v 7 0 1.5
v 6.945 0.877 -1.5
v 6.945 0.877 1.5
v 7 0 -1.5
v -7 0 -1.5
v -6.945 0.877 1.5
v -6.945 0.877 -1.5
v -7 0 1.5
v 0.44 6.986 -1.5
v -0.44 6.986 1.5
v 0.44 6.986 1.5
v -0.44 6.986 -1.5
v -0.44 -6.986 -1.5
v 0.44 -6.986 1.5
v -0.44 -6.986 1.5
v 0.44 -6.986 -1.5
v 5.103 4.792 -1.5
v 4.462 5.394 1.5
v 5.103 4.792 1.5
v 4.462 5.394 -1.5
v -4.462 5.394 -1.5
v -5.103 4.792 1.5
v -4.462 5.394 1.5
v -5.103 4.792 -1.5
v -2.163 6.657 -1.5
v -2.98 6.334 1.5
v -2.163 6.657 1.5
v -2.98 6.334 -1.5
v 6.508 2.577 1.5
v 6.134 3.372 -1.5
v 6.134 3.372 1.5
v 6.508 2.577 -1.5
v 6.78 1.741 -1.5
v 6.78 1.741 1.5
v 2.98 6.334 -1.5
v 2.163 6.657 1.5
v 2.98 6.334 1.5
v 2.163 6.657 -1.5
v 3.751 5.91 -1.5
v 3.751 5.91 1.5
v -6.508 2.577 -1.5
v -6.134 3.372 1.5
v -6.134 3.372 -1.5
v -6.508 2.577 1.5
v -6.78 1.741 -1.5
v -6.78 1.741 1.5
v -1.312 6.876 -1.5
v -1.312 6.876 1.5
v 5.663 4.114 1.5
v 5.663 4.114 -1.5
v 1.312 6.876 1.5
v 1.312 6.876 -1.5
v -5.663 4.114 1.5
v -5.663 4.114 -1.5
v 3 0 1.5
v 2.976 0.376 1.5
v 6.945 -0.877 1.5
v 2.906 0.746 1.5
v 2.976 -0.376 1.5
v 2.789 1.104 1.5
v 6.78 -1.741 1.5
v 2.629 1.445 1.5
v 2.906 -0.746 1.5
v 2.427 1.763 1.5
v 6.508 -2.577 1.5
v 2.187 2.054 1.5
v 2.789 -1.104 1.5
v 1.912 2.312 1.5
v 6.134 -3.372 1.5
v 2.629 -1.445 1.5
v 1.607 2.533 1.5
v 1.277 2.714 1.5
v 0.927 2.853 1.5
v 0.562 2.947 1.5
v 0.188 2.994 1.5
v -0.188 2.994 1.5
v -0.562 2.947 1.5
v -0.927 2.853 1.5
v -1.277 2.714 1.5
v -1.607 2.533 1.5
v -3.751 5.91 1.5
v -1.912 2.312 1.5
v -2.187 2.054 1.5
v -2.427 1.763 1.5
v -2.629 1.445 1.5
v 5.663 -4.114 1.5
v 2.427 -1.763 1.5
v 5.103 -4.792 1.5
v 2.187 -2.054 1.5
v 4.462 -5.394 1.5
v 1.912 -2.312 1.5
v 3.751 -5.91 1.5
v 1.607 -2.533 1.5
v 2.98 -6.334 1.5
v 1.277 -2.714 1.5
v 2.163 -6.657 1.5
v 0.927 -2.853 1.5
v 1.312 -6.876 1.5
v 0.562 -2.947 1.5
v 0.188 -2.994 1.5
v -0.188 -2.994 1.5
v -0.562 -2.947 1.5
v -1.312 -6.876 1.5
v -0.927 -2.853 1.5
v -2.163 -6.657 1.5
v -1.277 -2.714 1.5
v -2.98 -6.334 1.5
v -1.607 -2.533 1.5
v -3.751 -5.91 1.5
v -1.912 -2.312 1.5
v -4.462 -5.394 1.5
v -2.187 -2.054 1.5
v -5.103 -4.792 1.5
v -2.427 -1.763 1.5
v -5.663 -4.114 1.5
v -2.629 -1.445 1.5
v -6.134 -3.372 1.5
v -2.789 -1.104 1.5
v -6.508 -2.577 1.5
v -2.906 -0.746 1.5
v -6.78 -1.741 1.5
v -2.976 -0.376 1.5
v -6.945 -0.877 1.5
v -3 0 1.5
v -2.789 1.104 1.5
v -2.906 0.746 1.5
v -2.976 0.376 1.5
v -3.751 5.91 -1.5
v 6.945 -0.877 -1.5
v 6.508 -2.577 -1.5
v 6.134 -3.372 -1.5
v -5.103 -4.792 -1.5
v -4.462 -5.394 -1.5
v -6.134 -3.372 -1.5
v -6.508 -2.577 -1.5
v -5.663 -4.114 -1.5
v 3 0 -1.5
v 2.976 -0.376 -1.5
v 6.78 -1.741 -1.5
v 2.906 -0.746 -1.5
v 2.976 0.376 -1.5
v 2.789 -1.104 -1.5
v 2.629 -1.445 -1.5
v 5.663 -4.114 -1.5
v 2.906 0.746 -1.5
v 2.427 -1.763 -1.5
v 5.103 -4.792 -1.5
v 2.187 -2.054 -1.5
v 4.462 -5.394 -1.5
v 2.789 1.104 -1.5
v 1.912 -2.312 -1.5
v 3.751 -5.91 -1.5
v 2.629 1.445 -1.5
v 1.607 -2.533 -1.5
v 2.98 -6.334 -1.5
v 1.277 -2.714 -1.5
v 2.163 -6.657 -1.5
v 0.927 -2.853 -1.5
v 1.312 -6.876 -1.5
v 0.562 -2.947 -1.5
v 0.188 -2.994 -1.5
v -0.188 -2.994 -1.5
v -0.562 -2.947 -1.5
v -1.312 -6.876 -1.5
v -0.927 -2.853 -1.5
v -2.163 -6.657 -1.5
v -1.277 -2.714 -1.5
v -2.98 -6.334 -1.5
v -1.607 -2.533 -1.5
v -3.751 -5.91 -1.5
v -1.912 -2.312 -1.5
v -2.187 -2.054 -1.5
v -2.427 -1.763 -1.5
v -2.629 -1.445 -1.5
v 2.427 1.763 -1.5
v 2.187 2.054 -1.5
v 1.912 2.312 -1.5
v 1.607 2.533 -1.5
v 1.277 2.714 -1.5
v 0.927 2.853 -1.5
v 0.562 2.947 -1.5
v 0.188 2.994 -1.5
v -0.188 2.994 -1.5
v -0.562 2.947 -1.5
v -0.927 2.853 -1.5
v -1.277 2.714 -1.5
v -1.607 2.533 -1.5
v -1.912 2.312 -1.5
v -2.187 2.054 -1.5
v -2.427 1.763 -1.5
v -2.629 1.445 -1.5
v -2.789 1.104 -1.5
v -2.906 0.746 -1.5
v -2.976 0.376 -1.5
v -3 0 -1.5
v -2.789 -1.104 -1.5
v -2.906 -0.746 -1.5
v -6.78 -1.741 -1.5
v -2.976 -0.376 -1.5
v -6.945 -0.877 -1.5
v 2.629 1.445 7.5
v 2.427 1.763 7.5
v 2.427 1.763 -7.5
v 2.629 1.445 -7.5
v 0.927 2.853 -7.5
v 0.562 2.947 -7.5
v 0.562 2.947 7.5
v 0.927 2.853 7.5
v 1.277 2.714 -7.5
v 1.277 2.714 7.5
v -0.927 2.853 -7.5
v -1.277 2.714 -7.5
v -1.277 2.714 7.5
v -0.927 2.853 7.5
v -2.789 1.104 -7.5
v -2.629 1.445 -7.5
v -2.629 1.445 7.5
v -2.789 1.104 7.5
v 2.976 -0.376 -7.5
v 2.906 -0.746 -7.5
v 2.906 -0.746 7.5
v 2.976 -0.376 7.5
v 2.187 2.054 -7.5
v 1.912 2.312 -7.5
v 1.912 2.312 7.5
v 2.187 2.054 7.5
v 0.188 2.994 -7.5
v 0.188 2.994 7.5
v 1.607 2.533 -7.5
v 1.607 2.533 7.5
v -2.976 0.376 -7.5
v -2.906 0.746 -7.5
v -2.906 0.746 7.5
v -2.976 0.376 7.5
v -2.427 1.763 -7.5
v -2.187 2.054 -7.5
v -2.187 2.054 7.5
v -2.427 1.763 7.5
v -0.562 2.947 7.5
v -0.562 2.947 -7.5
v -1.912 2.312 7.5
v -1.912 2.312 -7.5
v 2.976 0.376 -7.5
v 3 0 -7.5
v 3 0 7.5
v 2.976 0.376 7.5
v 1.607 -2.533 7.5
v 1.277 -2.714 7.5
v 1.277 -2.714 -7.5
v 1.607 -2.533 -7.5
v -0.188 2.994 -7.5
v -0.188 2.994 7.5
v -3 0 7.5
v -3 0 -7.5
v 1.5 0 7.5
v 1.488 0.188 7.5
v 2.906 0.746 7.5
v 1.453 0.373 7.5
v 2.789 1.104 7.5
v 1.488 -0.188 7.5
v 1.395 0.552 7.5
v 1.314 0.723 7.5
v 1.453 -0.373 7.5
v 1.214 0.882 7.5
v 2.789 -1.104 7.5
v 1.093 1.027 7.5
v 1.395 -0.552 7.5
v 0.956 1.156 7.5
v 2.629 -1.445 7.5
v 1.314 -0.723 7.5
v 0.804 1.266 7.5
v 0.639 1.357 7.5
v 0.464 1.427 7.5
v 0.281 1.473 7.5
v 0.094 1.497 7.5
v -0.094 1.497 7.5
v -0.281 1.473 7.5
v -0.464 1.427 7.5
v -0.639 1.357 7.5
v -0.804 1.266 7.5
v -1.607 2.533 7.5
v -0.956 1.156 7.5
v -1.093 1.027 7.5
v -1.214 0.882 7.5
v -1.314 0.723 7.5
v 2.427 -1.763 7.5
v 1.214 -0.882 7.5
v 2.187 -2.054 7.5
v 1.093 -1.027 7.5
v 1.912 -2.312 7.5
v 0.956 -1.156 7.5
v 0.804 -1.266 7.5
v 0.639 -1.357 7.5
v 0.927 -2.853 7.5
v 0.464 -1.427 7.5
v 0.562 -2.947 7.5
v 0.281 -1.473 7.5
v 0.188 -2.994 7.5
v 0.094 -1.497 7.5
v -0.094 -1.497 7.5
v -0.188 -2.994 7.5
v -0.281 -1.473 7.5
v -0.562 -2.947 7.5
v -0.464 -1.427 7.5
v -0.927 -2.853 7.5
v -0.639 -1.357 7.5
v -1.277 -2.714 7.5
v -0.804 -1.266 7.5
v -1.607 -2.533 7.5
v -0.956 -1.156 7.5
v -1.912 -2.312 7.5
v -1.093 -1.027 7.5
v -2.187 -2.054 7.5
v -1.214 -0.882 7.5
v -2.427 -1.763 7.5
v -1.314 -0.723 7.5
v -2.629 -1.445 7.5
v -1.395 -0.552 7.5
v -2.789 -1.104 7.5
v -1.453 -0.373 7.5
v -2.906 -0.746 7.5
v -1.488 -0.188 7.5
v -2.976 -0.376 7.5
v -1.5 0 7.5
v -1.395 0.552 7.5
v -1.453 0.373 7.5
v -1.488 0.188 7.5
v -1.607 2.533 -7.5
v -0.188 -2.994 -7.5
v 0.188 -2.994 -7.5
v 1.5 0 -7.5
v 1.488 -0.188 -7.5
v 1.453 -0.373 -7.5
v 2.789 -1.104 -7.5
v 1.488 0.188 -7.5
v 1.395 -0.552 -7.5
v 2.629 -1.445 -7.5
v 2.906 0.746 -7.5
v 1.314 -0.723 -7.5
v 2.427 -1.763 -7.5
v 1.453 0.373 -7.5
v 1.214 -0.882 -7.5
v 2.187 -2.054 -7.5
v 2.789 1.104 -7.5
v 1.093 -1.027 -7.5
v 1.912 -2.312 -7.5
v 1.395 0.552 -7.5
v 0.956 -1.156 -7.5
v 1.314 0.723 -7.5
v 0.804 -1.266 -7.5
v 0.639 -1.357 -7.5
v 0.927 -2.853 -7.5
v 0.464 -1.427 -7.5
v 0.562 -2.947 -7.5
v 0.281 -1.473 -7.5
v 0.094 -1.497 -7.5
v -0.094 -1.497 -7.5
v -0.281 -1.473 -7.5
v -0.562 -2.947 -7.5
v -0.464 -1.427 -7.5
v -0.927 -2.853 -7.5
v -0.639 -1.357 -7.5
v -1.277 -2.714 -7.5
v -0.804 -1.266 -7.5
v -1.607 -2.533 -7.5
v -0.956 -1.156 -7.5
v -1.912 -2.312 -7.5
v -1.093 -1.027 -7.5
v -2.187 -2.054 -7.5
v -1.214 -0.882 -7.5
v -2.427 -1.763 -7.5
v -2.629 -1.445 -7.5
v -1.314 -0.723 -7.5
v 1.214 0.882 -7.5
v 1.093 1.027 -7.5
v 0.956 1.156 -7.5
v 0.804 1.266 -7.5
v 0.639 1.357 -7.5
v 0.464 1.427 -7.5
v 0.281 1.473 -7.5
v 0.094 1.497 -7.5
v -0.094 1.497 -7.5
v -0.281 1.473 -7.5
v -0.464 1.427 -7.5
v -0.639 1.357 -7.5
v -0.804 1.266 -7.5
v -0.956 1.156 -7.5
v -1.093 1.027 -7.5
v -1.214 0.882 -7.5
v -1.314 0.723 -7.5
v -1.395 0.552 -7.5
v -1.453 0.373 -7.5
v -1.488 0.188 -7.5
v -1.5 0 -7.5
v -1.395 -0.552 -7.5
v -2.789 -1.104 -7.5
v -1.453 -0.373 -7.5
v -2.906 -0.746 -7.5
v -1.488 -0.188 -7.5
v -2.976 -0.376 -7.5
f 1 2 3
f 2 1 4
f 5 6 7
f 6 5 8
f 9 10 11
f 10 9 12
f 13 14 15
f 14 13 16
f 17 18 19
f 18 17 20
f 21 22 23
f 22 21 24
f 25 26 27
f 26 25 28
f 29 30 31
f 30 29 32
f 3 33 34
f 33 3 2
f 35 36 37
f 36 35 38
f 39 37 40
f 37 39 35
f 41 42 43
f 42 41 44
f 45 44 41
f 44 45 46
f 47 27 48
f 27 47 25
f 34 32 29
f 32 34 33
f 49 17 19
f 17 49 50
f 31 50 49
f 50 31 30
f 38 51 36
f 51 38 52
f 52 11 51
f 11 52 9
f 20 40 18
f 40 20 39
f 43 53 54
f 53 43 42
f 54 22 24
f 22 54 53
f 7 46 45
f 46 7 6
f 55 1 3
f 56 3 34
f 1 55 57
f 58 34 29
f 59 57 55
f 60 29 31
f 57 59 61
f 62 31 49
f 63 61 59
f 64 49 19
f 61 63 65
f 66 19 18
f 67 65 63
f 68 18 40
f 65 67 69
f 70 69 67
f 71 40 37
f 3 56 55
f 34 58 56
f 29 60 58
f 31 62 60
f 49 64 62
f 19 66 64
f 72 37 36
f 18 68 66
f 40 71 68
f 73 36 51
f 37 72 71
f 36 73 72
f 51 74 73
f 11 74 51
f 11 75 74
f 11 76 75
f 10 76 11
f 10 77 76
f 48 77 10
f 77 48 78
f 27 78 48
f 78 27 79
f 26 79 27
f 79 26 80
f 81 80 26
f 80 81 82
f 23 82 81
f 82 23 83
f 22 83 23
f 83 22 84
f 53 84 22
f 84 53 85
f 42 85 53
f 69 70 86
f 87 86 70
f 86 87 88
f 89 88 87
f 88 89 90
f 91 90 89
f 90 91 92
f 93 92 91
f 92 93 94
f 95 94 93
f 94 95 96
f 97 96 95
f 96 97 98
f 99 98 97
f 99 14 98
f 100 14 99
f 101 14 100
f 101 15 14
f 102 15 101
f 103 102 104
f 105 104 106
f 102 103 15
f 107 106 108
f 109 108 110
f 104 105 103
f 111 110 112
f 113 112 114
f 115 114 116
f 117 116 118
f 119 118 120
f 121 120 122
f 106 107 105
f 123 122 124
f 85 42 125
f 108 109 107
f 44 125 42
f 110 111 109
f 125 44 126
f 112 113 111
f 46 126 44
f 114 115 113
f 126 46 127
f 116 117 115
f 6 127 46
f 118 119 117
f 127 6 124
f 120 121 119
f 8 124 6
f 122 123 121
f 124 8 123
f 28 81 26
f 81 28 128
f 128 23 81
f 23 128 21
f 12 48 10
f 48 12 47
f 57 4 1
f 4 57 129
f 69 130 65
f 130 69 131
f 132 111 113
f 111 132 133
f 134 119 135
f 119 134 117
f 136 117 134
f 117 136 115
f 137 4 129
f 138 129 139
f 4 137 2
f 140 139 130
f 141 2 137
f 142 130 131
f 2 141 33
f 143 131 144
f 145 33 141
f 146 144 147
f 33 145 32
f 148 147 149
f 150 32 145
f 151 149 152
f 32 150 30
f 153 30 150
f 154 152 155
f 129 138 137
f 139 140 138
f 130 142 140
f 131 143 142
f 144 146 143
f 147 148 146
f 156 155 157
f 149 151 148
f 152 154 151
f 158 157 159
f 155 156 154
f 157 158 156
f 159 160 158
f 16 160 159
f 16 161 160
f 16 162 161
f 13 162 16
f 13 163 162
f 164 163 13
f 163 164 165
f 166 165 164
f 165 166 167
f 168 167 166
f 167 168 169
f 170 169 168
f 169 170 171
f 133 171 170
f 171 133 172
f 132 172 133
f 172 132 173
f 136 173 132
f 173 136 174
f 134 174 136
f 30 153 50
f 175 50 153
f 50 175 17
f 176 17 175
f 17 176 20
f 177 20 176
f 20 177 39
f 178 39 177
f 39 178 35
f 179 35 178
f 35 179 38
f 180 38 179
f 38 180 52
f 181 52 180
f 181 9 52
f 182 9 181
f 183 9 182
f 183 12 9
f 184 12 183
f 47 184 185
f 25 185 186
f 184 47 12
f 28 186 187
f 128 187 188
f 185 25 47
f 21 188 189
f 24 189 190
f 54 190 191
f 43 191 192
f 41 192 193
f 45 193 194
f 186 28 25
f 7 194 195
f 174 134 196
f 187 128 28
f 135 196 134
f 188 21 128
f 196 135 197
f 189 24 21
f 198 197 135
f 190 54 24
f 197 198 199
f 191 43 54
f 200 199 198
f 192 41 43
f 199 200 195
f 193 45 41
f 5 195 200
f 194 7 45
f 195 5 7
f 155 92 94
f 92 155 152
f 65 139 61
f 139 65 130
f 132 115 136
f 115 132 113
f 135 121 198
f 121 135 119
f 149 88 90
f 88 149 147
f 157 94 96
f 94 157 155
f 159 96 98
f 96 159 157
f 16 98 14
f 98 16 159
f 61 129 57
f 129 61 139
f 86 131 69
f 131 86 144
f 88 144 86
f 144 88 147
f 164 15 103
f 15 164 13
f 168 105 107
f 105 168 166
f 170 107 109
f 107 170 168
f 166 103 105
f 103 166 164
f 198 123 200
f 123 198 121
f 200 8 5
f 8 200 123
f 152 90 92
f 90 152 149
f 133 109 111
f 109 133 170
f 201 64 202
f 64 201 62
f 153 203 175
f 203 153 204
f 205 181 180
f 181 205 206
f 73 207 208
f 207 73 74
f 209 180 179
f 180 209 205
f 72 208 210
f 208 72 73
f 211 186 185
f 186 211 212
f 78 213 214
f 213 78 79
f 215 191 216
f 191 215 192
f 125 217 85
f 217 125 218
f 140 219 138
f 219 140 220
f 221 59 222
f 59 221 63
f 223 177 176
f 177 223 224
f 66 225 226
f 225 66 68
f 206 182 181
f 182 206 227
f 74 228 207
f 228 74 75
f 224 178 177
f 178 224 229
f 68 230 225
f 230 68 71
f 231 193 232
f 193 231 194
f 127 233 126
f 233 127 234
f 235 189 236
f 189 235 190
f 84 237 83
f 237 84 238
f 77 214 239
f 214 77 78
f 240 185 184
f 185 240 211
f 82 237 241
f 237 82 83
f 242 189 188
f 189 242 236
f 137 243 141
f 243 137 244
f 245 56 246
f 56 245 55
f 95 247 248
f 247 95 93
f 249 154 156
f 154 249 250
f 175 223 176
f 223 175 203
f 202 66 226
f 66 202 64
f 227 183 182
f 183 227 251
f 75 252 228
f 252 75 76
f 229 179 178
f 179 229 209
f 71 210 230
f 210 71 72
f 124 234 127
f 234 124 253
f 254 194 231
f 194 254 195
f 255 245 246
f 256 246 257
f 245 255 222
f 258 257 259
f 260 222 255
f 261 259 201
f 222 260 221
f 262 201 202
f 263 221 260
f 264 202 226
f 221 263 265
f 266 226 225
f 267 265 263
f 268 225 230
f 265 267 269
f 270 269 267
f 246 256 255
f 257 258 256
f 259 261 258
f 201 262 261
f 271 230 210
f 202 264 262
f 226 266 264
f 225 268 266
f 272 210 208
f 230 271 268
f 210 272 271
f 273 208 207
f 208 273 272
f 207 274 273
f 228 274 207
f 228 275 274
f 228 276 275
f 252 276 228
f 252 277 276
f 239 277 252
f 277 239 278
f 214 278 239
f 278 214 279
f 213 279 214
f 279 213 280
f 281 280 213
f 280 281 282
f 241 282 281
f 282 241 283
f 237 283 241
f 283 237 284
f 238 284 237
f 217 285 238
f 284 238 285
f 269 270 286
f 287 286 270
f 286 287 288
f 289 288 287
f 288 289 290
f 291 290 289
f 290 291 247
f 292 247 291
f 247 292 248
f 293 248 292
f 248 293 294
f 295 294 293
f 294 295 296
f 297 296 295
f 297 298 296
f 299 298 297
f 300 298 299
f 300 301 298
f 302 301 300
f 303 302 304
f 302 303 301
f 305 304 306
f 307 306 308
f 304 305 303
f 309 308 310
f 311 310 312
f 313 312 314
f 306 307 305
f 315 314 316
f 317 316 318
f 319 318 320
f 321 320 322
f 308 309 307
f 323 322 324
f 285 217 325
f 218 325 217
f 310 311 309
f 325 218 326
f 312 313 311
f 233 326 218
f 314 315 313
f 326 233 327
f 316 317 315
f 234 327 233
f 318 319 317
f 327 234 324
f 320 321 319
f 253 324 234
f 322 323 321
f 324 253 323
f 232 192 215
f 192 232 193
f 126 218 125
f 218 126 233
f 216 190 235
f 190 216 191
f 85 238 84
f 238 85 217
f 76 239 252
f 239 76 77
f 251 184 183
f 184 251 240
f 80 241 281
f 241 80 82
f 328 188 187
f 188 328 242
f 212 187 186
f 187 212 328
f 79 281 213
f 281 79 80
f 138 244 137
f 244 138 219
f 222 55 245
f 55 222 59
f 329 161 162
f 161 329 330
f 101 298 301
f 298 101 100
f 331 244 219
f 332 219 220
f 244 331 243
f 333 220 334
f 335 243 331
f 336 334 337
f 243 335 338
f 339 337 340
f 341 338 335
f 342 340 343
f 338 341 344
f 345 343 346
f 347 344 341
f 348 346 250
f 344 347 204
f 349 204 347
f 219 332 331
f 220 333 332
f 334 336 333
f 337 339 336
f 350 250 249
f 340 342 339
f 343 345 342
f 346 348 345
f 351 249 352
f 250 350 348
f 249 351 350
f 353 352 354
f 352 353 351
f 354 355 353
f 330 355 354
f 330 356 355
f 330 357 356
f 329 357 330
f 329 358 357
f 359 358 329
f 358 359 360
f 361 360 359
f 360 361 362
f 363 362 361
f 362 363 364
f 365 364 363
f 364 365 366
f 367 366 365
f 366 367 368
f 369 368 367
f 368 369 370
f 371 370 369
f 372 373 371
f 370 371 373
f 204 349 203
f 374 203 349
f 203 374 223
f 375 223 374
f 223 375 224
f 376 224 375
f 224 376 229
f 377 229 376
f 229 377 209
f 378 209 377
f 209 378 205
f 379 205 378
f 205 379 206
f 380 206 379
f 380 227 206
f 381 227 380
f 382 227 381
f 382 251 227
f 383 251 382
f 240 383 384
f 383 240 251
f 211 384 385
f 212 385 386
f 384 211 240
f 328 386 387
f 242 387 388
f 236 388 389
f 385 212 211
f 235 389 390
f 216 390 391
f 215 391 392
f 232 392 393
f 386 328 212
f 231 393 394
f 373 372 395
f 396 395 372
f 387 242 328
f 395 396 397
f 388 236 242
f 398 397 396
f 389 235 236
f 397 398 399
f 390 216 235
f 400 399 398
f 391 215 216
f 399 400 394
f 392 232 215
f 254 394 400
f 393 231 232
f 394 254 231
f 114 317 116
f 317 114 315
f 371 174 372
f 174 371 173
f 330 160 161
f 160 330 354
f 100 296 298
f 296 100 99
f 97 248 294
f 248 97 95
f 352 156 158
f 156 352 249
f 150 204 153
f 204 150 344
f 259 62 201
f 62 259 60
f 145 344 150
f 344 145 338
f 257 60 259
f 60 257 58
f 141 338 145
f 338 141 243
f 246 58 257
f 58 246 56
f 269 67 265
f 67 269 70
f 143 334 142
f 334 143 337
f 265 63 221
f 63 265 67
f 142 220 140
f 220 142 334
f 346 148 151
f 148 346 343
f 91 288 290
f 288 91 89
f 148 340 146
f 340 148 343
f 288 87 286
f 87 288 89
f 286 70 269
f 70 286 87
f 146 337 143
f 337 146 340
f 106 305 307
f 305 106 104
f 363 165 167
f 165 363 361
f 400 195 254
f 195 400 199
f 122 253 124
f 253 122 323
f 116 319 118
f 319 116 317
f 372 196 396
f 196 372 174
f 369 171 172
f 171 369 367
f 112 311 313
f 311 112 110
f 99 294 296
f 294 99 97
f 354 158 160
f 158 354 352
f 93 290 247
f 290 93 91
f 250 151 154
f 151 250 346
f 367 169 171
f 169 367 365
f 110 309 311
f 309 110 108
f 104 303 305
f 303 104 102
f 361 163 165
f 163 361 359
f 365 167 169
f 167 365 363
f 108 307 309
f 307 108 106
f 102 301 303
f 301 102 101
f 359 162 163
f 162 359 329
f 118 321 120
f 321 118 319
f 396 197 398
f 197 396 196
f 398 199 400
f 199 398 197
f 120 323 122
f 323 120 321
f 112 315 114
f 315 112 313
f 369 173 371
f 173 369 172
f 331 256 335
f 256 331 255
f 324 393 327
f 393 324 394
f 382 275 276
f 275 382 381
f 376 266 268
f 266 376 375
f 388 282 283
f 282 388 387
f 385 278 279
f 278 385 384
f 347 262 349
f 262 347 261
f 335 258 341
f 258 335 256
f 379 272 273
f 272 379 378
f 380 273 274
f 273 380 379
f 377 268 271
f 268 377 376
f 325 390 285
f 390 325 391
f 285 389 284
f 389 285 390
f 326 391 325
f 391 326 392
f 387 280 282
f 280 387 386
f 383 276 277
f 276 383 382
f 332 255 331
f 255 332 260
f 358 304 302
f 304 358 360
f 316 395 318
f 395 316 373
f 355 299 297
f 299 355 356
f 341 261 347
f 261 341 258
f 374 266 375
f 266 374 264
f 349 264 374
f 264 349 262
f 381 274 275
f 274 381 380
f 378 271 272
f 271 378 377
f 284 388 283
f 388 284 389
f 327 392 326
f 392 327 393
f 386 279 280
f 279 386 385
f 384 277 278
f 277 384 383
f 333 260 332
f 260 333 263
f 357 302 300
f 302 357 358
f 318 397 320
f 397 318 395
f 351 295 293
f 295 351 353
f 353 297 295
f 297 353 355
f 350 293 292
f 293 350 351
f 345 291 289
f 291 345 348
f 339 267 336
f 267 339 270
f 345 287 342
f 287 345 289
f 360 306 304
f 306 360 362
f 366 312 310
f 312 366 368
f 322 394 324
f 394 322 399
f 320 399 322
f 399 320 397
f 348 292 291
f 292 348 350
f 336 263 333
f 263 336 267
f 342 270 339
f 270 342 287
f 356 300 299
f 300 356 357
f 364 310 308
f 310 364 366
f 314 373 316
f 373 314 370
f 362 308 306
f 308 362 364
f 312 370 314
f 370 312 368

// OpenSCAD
$fn = 50;


difference() {
	union() {
		translate(v = [0, 0, -1.5000000000]) {
			rotate(a = [0, 0, 0]) {
				cylinder(h = 3, r = 7.0000000000);
			}
		}
		translate(v = [0, 0, -7.5000000000]) {
			rotate(a = [0, 0, 0]) {
				cylinder(h = 15, r = 3.0000000000);
			}
		}
	}
	union() {
		translate(v = [0, 0, -125.0000000000]) {
			rotate(a = [0, 0, 0]) {
				cylinder(h = 250, r = 1.5000000000);
			}
		}
	}
}
